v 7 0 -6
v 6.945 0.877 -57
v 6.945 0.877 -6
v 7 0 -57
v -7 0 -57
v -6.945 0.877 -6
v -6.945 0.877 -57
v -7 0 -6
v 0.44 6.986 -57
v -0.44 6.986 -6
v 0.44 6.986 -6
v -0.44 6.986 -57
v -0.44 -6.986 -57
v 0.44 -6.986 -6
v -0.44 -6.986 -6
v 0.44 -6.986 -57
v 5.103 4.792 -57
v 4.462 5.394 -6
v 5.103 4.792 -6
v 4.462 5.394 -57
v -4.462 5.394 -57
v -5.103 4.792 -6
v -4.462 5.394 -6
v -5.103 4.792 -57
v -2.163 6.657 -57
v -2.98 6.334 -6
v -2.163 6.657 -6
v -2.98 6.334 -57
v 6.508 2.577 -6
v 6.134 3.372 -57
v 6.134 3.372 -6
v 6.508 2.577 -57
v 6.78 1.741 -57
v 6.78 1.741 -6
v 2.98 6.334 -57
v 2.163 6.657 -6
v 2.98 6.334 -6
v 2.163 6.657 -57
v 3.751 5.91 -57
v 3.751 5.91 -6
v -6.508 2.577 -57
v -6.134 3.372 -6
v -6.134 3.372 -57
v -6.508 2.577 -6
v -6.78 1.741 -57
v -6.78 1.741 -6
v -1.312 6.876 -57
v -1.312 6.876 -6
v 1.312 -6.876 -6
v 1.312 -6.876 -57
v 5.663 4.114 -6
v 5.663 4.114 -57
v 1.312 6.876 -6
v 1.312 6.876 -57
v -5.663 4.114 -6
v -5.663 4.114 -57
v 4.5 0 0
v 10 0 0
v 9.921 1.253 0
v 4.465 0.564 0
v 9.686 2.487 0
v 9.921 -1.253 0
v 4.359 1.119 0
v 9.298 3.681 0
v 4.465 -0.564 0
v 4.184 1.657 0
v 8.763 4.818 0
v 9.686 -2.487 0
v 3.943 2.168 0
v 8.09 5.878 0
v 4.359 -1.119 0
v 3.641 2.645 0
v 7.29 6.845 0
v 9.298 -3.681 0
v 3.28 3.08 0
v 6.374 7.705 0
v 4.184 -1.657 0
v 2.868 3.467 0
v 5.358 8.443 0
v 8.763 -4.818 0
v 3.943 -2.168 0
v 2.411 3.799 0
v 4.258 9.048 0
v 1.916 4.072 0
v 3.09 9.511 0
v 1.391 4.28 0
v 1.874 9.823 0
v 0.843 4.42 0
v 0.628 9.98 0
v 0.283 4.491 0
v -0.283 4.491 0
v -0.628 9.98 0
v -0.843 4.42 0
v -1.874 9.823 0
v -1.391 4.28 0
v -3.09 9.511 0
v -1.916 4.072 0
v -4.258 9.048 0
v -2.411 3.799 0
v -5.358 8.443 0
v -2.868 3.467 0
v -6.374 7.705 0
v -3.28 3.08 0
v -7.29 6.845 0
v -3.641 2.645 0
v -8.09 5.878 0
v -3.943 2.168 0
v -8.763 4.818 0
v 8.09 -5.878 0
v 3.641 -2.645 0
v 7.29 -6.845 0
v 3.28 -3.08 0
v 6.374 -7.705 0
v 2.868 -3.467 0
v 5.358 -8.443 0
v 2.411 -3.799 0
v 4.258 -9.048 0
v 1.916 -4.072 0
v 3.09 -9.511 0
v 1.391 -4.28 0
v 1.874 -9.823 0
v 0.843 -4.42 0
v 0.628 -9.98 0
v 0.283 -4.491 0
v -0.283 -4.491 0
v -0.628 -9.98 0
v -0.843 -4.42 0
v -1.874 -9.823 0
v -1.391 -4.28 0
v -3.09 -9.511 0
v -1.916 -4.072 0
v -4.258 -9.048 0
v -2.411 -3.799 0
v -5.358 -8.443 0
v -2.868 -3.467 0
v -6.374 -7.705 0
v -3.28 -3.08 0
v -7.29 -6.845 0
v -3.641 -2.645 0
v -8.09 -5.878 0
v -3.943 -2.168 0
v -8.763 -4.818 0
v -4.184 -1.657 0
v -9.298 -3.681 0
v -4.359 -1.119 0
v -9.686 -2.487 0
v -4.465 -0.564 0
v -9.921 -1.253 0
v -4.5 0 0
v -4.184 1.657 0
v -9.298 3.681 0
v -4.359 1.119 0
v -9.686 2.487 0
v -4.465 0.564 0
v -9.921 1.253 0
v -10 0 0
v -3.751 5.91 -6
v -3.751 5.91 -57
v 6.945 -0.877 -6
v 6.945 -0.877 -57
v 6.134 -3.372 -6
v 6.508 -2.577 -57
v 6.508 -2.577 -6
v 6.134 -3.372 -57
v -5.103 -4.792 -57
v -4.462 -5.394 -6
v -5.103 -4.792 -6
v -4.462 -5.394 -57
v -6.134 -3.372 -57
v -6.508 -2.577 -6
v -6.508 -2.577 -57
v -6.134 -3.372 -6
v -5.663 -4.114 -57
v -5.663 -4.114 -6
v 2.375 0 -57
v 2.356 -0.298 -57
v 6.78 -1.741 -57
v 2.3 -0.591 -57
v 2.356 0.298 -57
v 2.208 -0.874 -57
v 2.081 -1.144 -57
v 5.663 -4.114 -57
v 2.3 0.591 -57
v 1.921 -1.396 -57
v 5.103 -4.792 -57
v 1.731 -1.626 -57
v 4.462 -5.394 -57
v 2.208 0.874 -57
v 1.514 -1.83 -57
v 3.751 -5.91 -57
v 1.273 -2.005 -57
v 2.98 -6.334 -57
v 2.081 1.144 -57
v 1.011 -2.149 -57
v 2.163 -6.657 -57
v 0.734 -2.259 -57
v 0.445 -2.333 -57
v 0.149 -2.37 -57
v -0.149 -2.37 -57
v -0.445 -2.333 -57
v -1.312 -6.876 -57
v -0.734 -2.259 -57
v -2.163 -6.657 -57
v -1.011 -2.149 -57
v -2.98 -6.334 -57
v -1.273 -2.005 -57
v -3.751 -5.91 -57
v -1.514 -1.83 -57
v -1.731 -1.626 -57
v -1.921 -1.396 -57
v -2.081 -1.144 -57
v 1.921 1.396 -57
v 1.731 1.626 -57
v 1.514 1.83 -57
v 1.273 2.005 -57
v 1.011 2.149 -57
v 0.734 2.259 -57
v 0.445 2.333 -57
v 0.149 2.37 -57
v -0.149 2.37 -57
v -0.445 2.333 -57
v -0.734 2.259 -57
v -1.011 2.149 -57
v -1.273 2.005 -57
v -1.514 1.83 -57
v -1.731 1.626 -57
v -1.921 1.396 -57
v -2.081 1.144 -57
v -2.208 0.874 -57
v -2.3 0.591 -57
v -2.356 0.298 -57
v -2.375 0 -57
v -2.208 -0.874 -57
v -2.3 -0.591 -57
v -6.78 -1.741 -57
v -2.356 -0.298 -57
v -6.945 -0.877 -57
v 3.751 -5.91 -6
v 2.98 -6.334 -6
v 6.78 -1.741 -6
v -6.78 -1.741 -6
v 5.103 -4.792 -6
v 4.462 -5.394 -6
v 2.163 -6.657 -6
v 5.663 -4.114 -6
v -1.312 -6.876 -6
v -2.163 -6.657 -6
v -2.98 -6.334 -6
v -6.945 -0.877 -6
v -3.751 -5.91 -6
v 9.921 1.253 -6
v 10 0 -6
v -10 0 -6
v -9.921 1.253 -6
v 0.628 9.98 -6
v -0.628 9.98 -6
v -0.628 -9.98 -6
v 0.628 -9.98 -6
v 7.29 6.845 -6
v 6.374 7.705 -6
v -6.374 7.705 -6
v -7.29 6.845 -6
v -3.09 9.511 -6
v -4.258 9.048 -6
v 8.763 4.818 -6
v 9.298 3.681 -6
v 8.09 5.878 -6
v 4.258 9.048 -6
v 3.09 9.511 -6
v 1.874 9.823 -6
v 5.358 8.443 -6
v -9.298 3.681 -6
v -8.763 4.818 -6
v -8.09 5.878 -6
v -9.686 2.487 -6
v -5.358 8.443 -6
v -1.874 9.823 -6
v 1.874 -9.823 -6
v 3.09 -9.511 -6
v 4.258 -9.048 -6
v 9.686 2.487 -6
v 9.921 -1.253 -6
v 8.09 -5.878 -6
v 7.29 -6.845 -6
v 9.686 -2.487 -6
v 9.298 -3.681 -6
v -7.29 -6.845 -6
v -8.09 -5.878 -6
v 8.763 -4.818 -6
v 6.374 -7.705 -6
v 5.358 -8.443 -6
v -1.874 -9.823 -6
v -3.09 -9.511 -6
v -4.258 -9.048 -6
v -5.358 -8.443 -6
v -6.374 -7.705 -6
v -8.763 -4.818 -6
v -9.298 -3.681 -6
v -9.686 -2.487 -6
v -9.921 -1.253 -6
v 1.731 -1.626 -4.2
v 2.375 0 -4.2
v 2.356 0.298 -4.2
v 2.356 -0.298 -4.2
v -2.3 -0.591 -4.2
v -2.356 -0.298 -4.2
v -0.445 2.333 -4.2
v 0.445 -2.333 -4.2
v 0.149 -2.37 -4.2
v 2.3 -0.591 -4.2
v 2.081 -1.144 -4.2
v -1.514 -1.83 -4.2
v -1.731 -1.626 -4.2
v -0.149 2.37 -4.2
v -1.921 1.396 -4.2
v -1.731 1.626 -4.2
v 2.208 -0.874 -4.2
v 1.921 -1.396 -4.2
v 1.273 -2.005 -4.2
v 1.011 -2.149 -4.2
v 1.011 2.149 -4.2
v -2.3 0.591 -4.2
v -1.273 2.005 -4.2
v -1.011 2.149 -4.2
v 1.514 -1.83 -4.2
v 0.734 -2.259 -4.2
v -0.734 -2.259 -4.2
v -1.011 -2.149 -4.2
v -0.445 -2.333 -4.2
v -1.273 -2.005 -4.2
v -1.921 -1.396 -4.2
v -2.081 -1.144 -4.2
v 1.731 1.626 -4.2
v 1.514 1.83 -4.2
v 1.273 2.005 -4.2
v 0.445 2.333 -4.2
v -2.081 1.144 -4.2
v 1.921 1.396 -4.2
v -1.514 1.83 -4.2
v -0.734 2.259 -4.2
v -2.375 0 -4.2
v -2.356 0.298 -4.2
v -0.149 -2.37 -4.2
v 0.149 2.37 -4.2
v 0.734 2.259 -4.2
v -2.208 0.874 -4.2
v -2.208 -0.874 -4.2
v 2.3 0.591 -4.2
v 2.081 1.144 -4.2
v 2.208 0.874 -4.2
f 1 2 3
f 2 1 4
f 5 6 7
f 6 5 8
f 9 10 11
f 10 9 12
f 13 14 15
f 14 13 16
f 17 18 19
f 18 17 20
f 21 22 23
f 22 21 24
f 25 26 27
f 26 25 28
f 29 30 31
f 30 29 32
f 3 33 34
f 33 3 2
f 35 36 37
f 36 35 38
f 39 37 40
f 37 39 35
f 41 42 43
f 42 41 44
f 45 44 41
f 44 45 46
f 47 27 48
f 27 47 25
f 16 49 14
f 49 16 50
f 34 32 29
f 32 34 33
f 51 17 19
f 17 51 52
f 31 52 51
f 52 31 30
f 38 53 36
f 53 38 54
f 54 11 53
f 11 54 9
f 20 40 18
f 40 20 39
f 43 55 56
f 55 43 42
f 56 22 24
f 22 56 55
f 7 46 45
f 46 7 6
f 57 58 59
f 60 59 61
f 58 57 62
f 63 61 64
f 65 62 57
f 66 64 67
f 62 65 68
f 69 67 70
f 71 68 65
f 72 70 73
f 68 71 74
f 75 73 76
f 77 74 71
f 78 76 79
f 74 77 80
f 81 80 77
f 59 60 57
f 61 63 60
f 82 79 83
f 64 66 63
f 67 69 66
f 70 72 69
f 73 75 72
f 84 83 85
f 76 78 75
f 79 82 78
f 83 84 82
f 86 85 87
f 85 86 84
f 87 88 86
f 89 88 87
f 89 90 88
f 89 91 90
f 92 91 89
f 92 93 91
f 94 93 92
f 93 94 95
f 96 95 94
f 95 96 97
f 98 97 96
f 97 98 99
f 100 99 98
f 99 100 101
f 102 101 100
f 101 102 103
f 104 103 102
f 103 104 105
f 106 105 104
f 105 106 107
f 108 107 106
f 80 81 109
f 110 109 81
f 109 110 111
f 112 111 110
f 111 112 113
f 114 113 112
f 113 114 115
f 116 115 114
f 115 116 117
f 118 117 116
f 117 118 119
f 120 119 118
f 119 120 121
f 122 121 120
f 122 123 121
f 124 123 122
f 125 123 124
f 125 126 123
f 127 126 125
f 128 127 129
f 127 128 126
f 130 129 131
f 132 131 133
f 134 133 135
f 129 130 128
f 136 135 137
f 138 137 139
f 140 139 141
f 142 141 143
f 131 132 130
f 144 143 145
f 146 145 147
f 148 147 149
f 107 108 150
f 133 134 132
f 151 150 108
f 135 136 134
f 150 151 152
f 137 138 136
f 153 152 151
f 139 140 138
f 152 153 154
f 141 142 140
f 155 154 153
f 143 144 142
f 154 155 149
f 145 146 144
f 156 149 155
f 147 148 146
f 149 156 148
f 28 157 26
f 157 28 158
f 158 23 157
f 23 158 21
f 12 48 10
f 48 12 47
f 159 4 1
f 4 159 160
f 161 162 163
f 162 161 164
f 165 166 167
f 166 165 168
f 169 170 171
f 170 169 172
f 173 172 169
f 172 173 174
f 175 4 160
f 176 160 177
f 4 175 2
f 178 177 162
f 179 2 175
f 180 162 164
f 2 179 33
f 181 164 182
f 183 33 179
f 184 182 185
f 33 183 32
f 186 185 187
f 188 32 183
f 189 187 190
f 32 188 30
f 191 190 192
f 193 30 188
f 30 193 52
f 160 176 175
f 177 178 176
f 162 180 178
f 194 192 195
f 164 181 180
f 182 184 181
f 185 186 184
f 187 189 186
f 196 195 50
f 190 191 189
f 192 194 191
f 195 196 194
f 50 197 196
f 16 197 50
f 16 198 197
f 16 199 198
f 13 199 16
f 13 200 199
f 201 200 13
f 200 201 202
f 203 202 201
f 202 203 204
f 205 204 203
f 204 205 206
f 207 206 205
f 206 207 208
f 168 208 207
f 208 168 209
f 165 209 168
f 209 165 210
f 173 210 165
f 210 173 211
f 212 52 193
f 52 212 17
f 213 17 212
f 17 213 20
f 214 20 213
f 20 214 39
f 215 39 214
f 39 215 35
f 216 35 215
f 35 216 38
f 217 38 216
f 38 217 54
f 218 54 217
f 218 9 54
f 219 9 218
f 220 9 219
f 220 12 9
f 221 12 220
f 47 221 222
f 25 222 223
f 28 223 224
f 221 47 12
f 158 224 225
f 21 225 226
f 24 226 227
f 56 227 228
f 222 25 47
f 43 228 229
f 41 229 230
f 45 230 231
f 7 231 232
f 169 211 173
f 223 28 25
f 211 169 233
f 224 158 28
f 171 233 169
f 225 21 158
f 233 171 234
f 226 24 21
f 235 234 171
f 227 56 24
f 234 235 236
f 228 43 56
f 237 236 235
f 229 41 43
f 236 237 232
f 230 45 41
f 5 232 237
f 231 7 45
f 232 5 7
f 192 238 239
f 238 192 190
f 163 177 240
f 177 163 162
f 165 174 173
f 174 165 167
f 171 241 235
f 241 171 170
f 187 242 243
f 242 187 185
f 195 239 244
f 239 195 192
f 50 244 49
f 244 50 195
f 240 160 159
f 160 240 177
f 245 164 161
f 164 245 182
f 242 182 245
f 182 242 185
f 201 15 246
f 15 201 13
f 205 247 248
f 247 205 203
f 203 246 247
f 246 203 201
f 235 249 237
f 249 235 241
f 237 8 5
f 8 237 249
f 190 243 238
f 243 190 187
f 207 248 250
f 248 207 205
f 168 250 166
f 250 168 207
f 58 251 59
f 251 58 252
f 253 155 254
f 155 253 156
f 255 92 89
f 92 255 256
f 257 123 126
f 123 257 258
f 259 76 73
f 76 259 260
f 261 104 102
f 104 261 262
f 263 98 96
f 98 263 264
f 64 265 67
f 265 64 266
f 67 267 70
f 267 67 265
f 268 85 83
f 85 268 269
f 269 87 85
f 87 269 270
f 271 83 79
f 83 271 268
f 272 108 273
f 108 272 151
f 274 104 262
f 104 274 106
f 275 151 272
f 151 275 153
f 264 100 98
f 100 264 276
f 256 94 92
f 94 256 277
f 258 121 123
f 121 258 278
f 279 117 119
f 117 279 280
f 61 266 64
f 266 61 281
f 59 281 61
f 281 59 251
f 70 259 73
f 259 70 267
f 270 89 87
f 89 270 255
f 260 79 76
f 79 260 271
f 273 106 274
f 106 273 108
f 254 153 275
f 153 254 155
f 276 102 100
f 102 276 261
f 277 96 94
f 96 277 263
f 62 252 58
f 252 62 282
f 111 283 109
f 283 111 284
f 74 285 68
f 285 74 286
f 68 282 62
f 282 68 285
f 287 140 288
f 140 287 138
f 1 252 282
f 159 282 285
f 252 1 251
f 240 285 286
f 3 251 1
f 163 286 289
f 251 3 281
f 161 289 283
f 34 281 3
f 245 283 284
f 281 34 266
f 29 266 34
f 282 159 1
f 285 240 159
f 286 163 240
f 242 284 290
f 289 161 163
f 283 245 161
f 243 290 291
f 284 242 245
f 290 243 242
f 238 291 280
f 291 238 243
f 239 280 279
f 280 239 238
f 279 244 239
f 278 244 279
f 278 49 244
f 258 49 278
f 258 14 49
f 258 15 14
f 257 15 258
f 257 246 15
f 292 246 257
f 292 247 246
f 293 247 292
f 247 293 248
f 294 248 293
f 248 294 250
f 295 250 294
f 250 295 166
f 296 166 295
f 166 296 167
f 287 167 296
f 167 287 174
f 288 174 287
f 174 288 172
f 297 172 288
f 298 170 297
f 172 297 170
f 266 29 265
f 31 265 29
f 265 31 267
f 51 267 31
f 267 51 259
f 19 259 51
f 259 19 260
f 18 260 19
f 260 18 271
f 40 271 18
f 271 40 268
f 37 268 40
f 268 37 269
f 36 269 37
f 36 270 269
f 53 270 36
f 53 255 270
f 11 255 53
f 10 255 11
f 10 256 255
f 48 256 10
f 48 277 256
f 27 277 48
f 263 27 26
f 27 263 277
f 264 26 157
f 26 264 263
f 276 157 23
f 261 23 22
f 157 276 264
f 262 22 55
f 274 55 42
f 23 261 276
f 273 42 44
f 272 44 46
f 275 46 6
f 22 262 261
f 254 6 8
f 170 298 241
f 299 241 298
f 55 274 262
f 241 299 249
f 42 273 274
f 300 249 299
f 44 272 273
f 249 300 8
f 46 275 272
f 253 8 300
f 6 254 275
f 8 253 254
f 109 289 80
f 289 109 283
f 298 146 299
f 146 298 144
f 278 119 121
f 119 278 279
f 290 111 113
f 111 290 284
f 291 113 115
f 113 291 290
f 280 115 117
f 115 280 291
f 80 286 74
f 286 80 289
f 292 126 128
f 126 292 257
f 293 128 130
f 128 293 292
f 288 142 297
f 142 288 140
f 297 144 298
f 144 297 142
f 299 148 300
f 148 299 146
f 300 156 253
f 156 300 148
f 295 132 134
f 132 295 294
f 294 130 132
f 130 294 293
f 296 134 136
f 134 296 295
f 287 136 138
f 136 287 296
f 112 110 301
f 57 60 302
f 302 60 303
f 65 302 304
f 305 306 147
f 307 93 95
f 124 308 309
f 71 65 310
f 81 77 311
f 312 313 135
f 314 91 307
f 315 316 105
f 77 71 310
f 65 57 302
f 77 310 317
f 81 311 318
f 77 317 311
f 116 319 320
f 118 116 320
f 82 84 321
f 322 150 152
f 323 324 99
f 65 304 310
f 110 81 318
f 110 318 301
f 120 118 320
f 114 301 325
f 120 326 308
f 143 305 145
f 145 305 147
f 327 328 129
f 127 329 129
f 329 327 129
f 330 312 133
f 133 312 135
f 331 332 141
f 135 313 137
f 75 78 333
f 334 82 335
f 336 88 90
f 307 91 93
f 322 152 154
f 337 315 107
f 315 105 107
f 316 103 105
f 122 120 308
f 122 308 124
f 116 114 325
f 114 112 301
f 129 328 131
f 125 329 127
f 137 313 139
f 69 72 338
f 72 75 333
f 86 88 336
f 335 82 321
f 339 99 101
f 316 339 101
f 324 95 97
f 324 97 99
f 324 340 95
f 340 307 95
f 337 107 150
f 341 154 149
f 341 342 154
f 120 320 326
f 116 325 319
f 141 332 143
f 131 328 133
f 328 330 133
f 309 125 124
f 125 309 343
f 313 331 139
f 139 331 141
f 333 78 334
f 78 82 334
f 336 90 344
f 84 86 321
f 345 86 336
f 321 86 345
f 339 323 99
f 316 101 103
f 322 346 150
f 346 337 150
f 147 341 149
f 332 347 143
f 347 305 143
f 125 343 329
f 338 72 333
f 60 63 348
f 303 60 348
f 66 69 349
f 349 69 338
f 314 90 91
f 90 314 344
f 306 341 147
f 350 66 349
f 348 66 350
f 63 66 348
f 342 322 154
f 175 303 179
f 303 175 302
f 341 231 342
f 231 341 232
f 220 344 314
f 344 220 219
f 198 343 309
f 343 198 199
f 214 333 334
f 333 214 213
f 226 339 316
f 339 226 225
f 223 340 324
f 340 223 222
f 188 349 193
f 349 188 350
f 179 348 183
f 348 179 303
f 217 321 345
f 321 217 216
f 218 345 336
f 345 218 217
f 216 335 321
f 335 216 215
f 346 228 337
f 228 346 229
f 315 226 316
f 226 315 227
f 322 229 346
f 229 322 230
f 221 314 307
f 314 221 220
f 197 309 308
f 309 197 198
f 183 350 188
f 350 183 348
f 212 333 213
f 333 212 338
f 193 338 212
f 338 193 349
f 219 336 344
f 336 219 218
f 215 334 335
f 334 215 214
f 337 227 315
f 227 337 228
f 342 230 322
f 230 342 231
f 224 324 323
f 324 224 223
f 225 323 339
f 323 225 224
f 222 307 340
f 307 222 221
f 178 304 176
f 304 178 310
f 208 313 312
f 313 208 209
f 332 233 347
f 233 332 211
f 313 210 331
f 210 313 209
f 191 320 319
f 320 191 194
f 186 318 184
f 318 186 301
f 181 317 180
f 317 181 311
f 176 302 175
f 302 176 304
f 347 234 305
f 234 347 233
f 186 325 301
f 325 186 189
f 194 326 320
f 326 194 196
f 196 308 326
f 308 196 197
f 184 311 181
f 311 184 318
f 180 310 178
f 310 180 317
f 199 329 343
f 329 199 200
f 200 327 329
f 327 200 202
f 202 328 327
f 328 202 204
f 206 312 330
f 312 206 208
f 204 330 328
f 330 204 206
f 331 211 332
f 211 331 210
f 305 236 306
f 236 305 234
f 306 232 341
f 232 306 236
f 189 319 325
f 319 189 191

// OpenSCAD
$fn = 50;


difference() {
	union() {
		translate(v = [0, 0, -57.0000000000]) {
			cylinder(h = 57, r = 7.0000000000);
		}
		translate(v = [0, 0, -6.0000000000]) {
			cylinder(h = 6, r = 10.0000000000);
		}
	}
	union() {
		translate(v = [0, 0, 0]) {
			rotate(a = [0, 0, 0]) {
				difference() {
					union() {
						#translate(v = [0, 0, -57.0000000000]) {
							cylinder(h = 57, r = 2.2500000000);
						}
						#translate(v = [0, 0, -4.2000000000]) {
							cylinder(h = 4.2000000000, r1 = 2.3750000000, r2 = 4.5000000000);
						}
						#translate(v = [0, 0, -57.0000000000]) {
							cylinder(h = 57, r = 2.3750000000);
						}
						#translate(v = [0, 0, -57.0000000000]) {
							cylinder(h = 57, r = 2.2500000000);
						}
					}
					union();
				}
			}
		}
	}
}
